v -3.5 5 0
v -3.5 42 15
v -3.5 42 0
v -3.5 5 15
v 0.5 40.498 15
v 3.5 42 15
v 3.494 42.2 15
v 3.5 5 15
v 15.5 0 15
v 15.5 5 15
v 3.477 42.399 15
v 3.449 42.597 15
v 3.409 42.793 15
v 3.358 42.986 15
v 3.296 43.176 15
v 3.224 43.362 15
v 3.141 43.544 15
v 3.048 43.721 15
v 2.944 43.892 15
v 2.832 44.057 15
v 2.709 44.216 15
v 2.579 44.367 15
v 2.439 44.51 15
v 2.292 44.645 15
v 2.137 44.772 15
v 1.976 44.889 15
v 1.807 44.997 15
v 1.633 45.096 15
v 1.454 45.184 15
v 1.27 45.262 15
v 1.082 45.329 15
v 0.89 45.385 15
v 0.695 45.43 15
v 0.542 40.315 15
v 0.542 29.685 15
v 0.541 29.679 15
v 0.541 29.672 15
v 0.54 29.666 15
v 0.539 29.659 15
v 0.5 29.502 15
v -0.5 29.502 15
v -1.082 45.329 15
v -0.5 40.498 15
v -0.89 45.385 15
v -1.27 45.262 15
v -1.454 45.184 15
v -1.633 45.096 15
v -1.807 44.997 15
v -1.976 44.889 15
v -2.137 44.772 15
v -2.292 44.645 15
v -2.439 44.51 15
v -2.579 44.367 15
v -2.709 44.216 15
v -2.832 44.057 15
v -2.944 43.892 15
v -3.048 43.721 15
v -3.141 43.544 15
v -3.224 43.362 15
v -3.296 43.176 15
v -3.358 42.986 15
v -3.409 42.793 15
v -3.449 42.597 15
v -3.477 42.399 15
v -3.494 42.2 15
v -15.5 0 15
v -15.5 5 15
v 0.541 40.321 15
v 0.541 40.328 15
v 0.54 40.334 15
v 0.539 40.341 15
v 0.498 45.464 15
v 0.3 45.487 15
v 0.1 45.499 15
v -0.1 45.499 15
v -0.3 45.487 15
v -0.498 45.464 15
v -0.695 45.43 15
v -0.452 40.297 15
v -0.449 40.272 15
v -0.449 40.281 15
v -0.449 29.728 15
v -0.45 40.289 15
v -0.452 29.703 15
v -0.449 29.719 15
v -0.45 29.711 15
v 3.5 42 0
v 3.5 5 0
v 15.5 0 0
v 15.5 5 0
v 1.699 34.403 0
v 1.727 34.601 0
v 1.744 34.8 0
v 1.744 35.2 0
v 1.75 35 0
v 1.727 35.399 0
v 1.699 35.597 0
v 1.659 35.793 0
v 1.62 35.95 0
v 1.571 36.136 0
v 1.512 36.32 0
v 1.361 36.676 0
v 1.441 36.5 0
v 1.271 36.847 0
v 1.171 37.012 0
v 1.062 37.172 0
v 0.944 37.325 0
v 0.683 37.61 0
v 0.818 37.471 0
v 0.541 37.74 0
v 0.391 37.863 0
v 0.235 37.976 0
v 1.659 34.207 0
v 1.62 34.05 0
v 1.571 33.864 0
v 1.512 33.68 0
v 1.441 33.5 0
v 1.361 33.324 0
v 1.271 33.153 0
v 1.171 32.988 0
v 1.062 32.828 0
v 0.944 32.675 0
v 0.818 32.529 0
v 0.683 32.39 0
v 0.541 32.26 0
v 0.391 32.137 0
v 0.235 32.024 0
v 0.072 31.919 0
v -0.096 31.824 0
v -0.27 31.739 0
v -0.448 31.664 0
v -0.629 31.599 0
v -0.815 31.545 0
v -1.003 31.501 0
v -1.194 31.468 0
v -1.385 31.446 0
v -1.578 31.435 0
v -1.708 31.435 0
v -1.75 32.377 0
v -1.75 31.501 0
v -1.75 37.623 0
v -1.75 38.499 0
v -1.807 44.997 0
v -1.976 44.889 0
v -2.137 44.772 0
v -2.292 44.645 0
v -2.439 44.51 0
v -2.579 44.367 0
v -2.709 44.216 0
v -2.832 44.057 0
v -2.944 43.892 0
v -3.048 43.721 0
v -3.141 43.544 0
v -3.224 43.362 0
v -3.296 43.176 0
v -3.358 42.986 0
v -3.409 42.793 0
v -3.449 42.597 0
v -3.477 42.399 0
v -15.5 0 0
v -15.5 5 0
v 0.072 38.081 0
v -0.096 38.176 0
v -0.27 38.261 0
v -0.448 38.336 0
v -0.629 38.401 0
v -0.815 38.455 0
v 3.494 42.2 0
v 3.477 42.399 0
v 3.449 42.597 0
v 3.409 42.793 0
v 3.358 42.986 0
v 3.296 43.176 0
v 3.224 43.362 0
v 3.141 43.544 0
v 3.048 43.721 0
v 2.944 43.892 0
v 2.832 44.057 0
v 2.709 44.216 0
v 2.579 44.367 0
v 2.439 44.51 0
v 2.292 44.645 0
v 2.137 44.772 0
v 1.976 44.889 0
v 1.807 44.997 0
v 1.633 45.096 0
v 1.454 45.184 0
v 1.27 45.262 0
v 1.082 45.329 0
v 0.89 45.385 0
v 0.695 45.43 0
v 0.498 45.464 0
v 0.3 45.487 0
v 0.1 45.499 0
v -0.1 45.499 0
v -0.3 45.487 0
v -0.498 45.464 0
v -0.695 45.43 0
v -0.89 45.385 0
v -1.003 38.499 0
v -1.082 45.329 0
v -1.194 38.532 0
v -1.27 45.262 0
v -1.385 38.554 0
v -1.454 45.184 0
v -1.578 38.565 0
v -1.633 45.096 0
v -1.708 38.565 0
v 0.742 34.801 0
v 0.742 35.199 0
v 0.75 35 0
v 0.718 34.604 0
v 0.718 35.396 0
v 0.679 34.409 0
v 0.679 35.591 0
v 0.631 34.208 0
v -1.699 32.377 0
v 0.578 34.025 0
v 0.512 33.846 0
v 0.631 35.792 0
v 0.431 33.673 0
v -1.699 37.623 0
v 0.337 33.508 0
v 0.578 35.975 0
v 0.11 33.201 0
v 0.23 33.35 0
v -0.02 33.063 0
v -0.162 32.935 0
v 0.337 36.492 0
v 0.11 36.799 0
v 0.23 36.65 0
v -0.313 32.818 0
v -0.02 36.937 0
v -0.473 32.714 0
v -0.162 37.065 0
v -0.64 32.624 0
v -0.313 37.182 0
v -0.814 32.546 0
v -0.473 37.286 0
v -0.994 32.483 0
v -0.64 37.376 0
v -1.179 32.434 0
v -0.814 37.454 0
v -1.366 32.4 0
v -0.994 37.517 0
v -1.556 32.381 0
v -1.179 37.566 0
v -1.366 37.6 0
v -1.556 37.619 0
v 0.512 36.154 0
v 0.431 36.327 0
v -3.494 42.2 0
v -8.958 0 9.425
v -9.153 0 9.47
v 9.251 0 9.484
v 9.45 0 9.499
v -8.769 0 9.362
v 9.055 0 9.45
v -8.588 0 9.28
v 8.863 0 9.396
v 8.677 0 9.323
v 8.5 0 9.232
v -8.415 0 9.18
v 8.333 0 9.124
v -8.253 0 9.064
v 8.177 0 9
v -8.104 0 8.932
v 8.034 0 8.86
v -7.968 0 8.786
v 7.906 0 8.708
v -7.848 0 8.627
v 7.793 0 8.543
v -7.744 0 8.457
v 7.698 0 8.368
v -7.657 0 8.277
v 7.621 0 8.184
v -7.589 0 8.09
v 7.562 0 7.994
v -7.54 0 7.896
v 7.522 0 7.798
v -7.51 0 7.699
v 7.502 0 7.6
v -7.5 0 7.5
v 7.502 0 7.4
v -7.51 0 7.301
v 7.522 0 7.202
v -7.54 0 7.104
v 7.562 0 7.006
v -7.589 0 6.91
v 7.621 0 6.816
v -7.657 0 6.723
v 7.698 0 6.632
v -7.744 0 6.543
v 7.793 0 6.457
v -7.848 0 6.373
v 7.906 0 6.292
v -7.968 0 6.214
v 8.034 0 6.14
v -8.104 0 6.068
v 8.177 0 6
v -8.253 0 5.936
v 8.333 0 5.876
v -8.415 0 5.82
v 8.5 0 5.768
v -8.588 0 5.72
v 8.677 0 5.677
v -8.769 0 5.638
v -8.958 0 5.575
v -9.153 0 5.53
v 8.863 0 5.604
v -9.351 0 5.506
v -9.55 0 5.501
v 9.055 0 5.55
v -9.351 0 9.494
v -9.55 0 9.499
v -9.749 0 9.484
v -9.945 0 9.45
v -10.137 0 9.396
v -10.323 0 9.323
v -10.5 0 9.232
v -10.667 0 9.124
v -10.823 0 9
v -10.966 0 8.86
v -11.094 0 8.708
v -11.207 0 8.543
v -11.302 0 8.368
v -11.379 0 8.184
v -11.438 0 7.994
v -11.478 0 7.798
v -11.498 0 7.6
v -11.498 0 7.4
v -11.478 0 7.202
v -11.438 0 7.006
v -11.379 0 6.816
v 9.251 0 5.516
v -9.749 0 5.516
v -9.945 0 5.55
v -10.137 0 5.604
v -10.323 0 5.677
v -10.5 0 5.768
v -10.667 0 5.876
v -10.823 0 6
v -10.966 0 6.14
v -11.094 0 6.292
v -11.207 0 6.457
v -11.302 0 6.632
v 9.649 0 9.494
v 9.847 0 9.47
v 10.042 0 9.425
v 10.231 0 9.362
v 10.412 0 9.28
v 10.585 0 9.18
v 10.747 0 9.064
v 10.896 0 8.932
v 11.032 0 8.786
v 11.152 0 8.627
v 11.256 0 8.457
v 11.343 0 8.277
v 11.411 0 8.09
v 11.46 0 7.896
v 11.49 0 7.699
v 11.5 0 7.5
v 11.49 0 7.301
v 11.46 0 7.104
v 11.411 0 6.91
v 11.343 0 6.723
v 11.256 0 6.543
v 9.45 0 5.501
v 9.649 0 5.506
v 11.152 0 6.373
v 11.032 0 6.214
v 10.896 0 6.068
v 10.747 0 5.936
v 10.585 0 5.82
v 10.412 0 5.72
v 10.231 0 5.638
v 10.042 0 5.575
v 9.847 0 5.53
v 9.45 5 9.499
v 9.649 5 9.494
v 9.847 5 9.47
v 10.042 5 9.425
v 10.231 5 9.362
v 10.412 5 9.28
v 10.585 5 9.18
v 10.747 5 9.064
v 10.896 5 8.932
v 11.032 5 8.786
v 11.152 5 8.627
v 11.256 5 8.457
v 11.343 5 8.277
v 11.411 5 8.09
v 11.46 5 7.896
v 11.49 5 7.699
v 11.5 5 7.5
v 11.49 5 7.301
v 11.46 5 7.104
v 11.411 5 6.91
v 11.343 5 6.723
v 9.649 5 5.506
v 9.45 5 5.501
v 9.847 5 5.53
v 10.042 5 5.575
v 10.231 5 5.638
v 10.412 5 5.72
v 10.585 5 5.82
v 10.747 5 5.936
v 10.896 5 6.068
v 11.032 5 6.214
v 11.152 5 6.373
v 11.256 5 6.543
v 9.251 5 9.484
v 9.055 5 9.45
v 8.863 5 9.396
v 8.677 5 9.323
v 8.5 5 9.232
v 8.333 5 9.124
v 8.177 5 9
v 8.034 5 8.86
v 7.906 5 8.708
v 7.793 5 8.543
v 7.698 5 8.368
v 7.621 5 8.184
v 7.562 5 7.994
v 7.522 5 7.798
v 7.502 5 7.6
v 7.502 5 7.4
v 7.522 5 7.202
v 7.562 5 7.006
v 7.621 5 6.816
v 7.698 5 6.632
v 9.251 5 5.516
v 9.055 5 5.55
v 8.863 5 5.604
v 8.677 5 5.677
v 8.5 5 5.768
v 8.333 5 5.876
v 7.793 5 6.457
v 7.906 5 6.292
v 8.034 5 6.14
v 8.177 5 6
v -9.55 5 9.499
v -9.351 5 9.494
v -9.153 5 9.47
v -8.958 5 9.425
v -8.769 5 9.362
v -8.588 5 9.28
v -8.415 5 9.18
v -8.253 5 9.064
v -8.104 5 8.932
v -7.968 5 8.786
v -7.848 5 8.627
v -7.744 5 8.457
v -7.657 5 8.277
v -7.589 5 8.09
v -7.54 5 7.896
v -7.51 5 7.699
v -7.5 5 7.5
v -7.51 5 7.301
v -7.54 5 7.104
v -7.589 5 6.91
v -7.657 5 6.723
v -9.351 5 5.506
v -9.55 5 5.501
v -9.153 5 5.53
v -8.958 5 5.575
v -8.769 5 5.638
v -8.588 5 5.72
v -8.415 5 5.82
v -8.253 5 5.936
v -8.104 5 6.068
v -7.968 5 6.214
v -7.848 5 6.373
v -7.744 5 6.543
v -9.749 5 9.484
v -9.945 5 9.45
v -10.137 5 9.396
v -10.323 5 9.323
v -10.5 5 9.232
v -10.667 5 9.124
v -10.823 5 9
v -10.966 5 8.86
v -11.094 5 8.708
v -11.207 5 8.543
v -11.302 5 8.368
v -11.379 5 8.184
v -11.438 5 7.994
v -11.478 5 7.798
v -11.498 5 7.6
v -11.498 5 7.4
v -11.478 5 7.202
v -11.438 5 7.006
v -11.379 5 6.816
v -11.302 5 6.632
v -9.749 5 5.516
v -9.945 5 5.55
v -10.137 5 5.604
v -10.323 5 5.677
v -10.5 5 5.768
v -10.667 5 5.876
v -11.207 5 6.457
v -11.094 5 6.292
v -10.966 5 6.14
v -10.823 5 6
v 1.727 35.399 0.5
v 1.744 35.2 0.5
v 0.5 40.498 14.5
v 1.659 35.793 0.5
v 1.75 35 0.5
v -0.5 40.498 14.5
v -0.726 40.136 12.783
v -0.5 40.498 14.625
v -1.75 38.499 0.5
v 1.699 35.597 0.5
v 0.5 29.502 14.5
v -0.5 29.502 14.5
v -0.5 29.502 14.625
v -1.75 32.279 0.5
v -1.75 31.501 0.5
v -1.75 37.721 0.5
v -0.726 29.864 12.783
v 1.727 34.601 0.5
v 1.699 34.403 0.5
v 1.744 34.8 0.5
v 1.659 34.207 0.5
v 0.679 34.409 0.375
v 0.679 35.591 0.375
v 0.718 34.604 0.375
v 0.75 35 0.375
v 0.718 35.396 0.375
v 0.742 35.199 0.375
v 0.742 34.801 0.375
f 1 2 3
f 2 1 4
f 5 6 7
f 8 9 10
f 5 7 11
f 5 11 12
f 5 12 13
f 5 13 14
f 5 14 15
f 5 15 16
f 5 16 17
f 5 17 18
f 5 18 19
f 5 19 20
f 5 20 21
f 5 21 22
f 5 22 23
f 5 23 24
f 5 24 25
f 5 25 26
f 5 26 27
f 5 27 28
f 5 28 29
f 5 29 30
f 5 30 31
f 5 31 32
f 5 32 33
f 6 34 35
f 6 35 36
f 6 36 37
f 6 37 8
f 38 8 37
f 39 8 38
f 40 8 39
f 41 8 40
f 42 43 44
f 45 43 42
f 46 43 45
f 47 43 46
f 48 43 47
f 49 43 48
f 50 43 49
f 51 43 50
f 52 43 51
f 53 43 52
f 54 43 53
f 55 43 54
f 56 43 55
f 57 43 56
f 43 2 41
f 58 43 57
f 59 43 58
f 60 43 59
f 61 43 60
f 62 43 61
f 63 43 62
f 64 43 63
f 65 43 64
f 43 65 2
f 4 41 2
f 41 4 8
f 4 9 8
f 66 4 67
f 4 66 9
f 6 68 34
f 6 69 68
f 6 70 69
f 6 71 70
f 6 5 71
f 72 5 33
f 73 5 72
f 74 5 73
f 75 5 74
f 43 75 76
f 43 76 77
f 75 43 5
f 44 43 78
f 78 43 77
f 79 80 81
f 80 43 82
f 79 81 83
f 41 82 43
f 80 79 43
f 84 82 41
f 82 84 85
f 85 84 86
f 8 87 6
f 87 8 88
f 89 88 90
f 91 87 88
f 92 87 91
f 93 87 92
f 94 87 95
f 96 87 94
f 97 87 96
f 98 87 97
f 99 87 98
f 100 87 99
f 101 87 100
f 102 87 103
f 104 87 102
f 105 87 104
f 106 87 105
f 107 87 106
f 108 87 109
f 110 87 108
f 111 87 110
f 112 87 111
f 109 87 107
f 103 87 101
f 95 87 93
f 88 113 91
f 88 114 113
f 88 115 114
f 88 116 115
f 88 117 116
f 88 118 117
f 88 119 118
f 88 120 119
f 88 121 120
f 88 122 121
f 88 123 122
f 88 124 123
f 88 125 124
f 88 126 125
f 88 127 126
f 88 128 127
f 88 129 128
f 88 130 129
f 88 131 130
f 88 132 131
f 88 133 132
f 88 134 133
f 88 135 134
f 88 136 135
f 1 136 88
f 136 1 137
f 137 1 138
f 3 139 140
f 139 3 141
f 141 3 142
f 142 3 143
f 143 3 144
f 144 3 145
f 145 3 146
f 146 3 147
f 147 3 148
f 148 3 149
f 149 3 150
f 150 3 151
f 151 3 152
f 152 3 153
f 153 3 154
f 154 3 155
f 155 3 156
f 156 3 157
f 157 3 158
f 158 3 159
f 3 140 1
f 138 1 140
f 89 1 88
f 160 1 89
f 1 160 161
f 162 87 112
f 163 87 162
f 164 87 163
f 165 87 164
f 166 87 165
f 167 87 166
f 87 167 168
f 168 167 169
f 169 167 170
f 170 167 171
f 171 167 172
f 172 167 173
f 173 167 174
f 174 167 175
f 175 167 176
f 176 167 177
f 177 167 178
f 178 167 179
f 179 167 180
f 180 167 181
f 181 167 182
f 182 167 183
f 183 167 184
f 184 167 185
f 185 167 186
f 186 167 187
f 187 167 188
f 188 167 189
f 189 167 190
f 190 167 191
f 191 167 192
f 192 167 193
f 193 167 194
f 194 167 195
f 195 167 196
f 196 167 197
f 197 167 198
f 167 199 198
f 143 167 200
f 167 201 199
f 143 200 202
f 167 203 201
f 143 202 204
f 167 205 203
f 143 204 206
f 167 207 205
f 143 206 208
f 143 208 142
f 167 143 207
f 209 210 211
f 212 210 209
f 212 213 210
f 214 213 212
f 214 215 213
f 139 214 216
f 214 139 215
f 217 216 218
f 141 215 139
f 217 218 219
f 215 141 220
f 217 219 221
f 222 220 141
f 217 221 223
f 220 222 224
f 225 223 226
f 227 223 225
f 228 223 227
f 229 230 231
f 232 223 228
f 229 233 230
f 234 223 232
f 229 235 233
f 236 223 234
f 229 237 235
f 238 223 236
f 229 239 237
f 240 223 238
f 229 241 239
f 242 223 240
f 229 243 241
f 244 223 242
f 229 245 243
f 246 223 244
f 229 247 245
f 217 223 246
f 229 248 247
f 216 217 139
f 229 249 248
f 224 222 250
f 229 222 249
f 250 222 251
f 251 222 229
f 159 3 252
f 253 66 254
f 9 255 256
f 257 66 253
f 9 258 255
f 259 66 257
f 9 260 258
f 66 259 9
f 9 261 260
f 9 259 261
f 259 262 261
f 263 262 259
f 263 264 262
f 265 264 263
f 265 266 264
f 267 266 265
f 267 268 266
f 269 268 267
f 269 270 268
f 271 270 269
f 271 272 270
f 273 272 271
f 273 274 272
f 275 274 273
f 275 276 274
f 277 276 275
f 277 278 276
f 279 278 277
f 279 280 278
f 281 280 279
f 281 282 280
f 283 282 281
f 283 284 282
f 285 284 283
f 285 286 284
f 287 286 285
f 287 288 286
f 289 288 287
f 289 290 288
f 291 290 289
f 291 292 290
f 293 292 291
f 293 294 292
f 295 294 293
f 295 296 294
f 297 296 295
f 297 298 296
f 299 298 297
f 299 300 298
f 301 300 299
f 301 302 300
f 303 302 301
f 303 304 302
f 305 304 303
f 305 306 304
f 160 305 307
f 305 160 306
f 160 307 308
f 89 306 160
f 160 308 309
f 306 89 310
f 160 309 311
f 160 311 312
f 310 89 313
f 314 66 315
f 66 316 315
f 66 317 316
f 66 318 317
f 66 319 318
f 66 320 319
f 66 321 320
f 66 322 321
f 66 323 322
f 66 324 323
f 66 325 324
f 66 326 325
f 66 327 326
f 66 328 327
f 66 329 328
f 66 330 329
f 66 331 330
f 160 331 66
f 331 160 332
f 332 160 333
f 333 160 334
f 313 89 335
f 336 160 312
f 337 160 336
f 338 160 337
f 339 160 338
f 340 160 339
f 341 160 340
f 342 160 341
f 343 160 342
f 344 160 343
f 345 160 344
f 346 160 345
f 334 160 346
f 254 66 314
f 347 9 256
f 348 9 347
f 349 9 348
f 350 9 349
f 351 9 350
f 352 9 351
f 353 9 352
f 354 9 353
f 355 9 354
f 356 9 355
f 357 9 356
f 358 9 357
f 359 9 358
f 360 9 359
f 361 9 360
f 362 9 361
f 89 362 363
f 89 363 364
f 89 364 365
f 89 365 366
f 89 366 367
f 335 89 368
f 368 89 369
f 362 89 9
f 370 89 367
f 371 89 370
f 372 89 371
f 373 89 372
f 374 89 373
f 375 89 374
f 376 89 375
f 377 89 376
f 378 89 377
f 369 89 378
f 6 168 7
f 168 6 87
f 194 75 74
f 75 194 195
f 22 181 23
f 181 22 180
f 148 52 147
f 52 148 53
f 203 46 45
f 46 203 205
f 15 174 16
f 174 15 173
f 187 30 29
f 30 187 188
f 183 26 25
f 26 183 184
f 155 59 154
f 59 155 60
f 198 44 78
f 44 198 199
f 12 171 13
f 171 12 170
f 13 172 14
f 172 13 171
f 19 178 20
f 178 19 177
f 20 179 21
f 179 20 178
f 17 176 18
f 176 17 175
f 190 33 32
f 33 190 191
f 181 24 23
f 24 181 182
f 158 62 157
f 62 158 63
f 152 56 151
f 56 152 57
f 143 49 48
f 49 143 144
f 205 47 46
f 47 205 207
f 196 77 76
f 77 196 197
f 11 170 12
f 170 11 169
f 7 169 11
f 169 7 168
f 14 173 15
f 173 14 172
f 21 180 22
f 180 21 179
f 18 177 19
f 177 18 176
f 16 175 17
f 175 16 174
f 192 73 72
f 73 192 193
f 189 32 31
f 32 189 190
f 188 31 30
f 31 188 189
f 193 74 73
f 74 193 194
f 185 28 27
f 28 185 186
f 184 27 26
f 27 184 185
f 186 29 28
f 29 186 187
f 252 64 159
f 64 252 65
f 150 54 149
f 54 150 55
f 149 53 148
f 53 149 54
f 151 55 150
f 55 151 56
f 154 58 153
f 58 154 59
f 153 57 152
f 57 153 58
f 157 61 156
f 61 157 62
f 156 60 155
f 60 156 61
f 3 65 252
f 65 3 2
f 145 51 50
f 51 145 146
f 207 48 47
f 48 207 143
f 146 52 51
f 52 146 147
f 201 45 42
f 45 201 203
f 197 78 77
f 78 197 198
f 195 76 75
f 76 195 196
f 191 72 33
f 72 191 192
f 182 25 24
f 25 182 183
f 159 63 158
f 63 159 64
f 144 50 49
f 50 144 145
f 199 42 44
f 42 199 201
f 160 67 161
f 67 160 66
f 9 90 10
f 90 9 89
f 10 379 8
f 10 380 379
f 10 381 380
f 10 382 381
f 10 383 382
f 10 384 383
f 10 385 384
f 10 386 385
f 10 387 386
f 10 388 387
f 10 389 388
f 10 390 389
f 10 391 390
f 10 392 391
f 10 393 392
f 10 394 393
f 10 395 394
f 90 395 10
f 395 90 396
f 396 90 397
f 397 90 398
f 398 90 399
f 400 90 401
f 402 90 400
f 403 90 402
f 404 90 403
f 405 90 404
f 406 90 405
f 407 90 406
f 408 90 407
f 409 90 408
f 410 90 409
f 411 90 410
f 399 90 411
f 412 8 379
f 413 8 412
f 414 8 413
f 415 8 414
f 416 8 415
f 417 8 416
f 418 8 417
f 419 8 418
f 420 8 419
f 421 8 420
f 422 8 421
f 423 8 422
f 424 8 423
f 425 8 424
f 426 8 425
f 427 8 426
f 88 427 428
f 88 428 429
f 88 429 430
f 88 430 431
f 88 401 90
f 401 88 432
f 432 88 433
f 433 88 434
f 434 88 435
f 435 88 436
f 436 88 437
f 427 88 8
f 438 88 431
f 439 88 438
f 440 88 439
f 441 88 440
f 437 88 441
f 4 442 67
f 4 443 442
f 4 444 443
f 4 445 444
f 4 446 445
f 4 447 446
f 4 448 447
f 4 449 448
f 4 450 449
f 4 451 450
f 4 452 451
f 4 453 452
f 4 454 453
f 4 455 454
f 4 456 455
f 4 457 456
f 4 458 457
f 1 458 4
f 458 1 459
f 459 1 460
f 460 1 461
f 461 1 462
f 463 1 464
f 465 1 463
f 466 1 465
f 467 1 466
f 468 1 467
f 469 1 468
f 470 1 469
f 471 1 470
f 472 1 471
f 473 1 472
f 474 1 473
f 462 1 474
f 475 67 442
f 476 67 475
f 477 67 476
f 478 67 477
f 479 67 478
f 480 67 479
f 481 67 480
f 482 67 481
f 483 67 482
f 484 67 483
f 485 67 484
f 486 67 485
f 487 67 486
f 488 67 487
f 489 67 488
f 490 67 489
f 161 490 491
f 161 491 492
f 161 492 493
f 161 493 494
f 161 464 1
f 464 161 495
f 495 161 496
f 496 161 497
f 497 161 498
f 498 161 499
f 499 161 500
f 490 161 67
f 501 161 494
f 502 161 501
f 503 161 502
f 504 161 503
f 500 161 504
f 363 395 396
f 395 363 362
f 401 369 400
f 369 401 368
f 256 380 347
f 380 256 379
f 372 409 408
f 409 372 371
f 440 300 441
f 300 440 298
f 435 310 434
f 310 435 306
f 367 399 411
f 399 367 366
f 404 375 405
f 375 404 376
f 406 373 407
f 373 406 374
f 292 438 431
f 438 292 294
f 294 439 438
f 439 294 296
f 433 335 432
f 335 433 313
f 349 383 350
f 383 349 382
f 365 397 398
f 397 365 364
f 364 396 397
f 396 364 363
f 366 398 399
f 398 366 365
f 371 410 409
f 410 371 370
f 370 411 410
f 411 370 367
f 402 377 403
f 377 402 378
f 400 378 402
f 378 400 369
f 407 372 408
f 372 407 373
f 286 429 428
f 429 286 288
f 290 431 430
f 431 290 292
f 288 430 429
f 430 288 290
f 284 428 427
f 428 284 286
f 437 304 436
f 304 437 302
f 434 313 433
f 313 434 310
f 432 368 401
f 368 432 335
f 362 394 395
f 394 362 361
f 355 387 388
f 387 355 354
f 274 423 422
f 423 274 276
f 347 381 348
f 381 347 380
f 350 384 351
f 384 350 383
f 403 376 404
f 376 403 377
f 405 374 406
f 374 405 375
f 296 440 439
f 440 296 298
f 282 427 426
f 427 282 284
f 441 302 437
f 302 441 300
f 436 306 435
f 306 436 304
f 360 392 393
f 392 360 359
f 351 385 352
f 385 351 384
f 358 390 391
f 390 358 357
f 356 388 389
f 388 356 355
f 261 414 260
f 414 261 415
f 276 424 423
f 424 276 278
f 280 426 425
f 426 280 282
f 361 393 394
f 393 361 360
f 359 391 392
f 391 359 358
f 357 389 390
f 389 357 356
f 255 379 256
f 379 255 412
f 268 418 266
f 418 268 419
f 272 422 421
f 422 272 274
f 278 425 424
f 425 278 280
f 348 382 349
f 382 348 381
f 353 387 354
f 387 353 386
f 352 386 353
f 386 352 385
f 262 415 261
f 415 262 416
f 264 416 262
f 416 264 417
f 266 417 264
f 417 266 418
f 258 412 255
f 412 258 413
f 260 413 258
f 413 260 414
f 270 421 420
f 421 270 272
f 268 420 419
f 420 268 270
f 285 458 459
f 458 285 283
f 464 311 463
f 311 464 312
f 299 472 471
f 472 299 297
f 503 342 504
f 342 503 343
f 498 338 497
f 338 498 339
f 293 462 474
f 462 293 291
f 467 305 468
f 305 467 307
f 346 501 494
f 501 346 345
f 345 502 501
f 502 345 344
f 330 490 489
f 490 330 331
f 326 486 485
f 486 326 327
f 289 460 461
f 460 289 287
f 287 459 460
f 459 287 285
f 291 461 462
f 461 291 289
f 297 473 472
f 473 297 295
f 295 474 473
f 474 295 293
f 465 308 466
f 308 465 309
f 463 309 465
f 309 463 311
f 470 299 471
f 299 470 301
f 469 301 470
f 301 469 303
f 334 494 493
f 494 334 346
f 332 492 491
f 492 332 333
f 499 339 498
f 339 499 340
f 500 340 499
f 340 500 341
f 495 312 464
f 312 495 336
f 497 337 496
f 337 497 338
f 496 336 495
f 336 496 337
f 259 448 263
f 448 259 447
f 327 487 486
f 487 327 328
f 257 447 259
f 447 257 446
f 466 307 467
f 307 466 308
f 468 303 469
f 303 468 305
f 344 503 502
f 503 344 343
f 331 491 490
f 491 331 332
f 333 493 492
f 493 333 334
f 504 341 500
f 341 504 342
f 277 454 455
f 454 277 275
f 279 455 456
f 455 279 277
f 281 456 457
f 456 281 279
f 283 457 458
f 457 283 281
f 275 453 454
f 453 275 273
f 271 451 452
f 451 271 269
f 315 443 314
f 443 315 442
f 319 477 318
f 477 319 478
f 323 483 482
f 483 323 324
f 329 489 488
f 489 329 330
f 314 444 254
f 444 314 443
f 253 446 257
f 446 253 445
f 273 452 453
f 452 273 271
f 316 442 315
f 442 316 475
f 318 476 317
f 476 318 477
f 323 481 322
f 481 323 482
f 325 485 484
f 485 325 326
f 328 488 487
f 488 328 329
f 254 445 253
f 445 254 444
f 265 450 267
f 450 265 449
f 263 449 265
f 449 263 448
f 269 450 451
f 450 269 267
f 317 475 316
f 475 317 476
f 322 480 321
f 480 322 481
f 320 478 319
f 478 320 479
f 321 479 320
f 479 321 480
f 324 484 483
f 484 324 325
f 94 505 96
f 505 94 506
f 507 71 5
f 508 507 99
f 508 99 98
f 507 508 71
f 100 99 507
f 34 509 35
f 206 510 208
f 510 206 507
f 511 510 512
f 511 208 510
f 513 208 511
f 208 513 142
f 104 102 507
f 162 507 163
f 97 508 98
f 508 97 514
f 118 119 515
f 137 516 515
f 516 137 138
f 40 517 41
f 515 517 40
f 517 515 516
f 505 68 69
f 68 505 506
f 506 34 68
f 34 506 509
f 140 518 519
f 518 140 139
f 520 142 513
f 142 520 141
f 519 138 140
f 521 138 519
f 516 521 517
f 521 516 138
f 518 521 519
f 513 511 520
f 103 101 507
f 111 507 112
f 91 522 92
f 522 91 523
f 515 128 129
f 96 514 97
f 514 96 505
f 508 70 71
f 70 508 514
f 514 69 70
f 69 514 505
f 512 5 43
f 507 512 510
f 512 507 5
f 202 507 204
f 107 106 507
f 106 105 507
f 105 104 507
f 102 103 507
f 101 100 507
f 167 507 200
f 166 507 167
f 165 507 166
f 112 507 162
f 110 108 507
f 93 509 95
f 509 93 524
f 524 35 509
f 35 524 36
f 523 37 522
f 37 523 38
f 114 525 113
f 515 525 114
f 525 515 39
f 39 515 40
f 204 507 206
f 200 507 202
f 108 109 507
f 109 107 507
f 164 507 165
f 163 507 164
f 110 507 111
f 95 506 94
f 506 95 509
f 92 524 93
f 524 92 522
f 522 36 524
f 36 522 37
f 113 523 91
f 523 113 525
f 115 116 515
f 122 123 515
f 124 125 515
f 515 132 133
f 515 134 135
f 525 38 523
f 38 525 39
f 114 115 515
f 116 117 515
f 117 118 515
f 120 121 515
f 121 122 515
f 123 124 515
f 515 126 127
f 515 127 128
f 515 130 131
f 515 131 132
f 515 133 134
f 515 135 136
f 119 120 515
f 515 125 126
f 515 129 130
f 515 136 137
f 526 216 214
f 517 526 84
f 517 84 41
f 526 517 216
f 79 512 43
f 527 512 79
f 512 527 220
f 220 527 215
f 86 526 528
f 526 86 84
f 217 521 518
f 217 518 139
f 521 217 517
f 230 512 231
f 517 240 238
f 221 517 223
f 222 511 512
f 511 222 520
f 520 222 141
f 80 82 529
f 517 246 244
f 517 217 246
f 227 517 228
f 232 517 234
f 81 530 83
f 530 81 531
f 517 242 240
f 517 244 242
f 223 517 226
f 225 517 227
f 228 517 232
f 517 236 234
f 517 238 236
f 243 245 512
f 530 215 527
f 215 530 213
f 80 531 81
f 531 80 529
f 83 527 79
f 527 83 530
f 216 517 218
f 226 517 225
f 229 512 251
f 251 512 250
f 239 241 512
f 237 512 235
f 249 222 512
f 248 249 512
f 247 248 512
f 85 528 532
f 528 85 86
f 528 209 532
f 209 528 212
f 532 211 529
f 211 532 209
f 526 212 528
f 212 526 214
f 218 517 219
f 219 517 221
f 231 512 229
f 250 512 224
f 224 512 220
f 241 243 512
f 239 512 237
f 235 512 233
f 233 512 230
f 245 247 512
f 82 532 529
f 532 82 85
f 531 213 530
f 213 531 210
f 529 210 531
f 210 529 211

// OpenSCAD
Diameter = 7;
Thick = 1;
Lenght = 15;
NozzleHigth = 35;
BlockBaseThickness = 5;
Screw = 4;

BlockHeigth = NozzleHigth+Diameter;
BlockBase = Screw*6+Diameter;


Gap = .25;

$fa=($preview)?$fa:1;
$fs=($preview)?$fs:.2;

module Channel(D, T, L){
    Di=D-2*Thick;    
    difference(){
        hull(){
            translate([-D/4,0,0])
                difference(){
                    cylinder(d=D,h=T,center=true);
                    cylinder(d=D-2*T, h=2*T,center=true);
                    translate([-D/2,0,0]){
                        cube([D,D+T,2*T],center=true);
                    }
                }
            translate([0,0,L]){
                cube([T,PI*D/2,T],center=true);
            }
        }
        translate([0,0,-Gap/2])
        hull(){
            translate([-D/4,0,0]){
                difference(){
                        cylinder(d=Di,h=T,center=true);
                    cylinder(d=Di-2*T, h=2*T,center=true);
                    translate([-(Di+T)/2,0,0]){
                        cube([Di,Di+T,2*T],center=true);
                    }
                }
                translate([-T/2,0,0])
                    cube([T,Di,T],center=true);    
            }
            translate([-T,0,L+Gap]){
                cube([T,PI*D/2,T],center=true);
            }
        }
    }
}


difference(){
    union(){
        translate([-Diameter/2,0,0])
            cube([Diameter,BlockHeigth,Lenght]);
        translate([0,BlockHeigth,0])
            cylinder(d=Diameter,h=Lenght);
        translate([-BlockBase/2,0,0])
            cube([BlockBase,BlockBaseThickness,Lenght]);
    }
    translate([0,NozzleHigth,0])
        Channel(Diameter, Thick, Lenght);
    for (i = [1,-1]){
        translate([i*(Diameter/2+1.5*Screw),-Gap,Lenght/2])
            rotate([-90,0,0])
                cylinder(d=Screw,h=BlockBaseThickness+2*Gap);
    }
}
